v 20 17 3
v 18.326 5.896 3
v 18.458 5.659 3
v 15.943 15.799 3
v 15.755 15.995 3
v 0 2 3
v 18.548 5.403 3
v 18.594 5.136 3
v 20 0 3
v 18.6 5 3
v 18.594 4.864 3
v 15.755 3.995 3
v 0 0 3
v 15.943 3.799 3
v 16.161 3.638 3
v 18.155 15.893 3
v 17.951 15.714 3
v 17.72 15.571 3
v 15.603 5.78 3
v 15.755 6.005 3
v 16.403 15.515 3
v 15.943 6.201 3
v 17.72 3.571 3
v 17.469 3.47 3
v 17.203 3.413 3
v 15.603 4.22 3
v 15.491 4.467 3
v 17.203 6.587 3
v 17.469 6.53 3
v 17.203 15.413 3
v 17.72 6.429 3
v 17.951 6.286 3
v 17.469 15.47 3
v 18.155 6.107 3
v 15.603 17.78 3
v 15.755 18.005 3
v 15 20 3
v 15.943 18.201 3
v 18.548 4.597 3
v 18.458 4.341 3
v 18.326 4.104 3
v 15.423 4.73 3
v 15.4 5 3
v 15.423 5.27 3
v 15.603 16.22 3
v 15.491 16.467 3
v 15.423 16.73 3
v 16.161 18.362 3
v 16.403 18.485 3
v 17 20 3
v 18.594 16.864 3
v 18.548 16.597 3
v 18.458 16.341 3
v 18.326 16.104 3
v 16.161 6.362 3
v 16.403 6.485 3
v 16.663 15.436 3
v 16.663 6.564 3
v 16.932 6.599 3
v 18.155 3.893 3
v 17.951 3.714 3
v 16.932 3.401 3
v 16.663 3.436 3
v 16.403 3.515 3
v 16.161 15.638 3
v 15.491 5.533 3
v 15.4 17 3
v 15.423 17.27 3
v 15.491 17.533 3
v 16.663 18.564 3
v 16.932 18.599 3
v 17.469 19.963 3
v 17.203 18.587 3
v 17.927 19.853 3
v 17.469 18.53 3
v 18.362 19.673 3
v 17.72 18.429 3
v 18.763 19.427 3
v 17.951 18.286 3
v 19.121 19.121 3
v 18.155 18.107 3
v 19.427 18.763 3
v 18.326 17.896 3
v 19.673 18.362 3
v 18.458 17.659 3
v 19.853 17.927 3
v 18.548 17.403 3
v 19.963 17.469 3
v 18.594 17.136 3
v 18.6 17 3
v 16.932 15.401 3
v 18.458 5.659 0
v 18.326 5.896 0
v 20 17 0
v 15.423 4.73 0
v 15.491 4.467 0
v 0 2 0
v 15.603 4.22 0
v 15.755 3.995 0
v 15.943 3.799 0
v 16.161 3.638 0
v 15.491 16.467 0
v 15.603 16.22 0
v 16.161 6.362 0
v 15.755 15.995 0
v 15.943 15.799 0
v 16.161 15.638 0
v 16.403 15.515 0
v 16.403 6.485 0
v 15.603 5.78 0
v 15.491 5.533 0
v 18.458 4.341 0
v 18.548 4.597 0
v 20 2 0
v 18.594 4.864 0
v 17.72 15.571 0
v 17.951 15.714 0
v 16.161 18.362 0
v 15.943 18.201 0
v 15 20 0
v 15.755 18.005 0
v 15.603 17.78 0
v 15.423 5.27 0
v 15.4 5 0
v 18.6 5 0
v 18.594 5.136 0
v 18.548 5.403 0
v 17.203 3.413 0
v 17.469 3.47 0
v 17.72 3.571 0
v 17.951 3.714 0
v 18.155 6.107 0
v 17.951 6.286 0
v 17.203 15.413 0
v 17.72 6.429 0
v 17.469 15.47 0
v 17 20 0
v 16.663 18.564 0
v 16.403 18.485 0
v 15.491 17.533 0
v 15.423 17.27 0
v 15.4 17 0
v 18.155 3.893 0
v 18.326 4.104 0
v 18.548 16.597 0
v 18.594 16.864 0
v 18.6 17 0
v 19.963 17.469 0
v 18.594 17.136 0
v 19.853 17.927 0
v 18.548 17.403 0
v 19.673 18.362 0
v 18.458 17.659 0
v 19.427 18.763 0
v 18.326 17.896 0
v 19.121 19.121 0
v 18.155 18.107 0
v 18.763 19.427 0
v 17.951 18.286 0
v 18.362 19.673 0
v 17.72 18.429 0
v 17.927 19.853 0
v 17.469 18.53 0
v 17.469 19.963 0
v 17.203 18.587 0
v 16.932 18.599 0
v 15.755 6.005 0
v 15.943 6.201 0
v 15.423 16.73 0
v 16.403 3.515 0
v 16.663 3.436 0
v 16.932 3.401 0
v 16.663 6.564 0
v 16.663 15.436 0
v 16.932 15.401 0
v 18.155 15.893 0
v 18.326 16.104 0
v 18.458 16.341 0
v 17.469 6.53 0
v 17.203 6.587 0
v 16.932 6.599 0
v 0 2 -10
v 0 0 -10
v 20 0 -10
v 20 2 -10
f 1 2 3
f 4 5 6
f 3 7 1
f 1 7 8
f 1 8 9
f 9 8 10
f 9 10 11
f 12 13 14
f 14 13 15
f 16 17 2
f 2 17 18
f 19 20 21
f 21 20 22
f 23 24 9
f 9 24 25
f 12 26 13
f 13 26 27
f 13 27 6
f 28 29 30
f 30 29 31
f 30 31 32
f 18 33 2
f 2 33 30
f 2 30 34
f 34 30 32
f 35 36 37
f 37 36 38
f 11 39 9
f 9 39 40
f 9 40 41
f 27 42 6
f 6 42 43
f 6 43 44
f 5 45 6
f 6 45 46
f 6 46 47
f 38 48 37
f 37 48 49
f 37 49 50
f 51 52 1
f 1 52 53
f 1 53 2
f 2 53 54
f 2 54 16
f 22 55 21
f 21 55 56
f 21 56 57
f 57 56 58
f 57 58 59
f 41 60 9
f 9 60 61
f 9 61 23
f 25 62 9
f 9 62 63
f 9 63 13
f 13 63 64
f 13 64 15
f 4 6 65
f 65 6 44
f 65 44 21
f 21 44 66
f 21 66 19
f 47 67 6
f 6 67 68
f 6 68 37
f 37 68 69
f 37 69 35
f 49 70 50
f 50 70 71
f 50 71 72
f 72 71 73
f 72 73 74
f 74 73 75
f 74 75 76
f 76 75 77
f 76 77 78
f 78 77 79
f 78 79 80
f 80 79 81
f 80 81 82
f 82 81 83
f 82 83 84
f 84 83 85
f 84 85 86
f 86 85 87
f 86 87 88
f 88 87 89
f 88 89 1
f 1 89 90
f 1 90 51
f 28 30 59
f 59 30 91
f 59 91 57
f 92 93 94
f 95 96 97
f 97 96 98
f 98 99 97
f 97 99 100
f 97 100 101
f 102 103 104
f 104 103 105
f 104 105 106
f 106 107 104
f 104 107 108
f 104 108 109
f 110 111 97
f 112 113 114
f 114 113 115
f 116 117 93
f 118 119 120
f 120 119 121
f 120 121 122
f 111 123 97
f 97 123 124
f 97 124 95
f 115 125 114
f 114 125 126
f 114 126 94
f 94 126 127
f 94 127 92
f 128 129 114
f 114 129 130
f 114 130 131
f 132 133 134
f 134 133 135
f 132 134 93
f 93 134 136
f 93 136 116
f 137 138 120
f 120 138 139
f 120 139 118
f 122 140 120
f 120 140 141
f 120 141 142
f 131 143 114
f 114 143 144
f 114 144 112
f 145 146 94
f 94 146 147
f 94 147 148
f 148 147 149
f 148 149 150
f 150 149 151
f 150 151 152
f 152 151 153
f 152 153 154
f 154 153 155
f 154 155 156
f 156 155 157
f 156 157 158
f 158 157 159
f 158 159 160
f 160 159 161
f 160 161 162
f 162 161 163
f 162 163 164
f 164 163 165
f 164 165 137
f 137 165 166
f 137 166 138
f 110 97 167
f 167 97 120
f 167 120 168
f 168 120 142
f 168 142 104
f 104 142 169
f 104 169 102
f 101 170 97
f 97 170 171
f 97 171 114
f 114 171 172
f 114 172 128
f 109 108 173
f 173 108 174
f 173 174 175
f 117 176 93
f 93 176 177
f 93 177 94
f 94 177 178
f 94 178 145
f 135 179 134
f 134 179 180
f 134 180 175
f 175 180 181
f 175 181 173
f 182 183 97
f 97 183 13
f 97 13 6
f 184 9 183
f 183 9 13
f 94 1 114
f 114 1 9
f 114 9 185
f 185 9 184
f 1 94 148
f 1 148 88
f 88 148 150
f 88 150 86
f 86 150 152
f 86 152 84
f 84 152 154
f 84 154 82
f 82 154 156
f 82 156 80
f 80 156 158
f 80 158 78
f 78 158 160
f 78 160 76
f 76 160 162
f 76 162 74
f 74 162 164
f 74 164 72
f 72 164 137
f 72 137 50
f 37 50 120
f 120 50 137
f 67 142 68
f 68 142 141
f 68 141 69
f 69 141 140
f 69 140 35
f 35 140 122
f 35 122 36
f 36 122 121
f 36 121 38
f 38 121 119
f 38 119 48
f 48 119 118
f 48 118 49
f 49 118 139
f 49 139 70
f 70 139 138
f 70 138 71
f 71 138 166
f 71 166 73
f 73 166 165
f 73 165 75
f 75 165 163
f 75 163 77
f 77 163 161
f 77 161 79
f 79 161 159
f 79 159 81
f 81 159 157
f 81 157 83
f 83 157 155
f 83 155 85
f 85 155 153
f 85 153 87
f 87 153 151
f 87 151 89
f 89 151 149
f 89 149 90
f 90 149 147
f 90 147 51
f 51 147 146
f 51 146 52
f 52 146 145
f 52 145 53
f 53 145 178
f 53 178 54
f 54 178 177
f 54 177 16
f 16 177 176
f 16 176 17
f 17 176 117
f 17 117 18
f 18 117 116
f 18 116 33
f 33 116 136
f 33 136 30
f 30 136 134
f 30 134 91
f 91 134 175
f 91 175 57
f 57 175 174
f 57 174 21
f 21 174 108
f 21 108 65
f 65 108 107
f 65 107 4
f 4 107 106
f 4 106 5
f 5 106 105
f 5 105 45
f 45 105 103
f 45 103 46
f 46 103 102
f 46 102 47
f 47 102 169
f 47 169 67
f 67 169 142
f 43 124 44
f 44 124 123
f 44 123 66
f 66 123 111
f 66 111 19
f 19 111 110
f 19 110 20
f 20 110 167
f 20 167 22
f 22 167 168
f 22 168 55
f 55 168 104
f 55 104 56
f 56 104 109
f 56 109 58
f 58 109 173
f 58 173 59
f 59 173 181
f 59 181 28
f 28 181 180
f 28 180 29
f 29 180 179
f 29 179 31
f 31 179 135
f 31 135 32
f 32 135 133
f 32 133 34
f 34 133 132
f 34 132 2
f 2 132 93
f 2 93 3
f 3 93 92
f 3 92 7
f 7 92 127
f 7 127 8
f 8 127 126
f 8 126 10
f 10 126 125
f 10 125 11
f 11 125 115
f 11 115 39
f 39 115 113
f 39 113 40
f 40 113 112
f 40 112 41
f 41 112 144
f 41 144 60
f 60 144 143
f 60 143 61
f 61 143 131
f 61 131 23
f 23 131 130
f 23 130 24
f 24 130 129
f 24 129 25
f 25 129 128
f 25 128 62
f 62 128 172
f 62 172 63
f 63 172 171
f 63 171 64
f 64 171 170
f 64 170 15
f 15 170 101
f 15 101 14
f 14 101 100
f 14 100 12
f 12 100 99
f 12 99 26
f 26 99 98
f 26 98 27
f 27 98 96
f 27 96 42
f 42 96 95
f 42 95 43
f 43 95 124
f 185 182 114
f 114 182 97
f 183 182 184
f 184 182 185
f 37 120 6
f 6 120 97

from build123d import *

# Parameters (mm, degrees)
SKETCH_1_R          = 1.6
EXTRUDE_1_DEPTH     = 3
SKETCH_2_W          = 20
SKETCH_2_H          = 2
EXTRUDE_2_DEPTH     = 13
CUT_EXTRUDE_1_DEPTH = 20


with BuildPart() as part:
    # 草图1 → 凸台-拉伸1 (new body)
    with BuildSketch(Plane.XY):
        with BuildLine():
            Line((0, 0), (20, 0))
            Line((20, 0), (20, 17))
            ThreePointArc((20, 17), (19.121320344, 19.121320344), (17, 20))
            Line((17, 20), (0, 20))
            Line((0, 20), (0, 0))
        make_face()
        with Locations((17, 17)):
            Circle(SKETCH_1_R, mode=Mode.SUBTRACT)
        with Locations((17, 5)):
            Circle(SKETCH_1_R, mode=Mode.SUBTRACT)
    extrude(amount=EXTRUDE_1_DEPTH)

    # 草图2 → 凸台-拉伸2 (add)
    with BuildSketch(Plane.XY.offset(3)):
        with Locations((10, 1)):
            Rectangle(SKETCH_2_W, SKETCH_2_H)
    extrude(amount=-EXTRUDE_2_DEPTH)

    # 草图3 → 切除-拉伸1 (cut)
    with BuildSketch(Plane.XY.offset(3)):
        Polygon((0, 2), (15, 20), (0, 20), align=None)
    extrude(amount=-CUT_EXTRUDE_1_DEPTH, mode=Mode.SUBTRACT)


solid = part.part
